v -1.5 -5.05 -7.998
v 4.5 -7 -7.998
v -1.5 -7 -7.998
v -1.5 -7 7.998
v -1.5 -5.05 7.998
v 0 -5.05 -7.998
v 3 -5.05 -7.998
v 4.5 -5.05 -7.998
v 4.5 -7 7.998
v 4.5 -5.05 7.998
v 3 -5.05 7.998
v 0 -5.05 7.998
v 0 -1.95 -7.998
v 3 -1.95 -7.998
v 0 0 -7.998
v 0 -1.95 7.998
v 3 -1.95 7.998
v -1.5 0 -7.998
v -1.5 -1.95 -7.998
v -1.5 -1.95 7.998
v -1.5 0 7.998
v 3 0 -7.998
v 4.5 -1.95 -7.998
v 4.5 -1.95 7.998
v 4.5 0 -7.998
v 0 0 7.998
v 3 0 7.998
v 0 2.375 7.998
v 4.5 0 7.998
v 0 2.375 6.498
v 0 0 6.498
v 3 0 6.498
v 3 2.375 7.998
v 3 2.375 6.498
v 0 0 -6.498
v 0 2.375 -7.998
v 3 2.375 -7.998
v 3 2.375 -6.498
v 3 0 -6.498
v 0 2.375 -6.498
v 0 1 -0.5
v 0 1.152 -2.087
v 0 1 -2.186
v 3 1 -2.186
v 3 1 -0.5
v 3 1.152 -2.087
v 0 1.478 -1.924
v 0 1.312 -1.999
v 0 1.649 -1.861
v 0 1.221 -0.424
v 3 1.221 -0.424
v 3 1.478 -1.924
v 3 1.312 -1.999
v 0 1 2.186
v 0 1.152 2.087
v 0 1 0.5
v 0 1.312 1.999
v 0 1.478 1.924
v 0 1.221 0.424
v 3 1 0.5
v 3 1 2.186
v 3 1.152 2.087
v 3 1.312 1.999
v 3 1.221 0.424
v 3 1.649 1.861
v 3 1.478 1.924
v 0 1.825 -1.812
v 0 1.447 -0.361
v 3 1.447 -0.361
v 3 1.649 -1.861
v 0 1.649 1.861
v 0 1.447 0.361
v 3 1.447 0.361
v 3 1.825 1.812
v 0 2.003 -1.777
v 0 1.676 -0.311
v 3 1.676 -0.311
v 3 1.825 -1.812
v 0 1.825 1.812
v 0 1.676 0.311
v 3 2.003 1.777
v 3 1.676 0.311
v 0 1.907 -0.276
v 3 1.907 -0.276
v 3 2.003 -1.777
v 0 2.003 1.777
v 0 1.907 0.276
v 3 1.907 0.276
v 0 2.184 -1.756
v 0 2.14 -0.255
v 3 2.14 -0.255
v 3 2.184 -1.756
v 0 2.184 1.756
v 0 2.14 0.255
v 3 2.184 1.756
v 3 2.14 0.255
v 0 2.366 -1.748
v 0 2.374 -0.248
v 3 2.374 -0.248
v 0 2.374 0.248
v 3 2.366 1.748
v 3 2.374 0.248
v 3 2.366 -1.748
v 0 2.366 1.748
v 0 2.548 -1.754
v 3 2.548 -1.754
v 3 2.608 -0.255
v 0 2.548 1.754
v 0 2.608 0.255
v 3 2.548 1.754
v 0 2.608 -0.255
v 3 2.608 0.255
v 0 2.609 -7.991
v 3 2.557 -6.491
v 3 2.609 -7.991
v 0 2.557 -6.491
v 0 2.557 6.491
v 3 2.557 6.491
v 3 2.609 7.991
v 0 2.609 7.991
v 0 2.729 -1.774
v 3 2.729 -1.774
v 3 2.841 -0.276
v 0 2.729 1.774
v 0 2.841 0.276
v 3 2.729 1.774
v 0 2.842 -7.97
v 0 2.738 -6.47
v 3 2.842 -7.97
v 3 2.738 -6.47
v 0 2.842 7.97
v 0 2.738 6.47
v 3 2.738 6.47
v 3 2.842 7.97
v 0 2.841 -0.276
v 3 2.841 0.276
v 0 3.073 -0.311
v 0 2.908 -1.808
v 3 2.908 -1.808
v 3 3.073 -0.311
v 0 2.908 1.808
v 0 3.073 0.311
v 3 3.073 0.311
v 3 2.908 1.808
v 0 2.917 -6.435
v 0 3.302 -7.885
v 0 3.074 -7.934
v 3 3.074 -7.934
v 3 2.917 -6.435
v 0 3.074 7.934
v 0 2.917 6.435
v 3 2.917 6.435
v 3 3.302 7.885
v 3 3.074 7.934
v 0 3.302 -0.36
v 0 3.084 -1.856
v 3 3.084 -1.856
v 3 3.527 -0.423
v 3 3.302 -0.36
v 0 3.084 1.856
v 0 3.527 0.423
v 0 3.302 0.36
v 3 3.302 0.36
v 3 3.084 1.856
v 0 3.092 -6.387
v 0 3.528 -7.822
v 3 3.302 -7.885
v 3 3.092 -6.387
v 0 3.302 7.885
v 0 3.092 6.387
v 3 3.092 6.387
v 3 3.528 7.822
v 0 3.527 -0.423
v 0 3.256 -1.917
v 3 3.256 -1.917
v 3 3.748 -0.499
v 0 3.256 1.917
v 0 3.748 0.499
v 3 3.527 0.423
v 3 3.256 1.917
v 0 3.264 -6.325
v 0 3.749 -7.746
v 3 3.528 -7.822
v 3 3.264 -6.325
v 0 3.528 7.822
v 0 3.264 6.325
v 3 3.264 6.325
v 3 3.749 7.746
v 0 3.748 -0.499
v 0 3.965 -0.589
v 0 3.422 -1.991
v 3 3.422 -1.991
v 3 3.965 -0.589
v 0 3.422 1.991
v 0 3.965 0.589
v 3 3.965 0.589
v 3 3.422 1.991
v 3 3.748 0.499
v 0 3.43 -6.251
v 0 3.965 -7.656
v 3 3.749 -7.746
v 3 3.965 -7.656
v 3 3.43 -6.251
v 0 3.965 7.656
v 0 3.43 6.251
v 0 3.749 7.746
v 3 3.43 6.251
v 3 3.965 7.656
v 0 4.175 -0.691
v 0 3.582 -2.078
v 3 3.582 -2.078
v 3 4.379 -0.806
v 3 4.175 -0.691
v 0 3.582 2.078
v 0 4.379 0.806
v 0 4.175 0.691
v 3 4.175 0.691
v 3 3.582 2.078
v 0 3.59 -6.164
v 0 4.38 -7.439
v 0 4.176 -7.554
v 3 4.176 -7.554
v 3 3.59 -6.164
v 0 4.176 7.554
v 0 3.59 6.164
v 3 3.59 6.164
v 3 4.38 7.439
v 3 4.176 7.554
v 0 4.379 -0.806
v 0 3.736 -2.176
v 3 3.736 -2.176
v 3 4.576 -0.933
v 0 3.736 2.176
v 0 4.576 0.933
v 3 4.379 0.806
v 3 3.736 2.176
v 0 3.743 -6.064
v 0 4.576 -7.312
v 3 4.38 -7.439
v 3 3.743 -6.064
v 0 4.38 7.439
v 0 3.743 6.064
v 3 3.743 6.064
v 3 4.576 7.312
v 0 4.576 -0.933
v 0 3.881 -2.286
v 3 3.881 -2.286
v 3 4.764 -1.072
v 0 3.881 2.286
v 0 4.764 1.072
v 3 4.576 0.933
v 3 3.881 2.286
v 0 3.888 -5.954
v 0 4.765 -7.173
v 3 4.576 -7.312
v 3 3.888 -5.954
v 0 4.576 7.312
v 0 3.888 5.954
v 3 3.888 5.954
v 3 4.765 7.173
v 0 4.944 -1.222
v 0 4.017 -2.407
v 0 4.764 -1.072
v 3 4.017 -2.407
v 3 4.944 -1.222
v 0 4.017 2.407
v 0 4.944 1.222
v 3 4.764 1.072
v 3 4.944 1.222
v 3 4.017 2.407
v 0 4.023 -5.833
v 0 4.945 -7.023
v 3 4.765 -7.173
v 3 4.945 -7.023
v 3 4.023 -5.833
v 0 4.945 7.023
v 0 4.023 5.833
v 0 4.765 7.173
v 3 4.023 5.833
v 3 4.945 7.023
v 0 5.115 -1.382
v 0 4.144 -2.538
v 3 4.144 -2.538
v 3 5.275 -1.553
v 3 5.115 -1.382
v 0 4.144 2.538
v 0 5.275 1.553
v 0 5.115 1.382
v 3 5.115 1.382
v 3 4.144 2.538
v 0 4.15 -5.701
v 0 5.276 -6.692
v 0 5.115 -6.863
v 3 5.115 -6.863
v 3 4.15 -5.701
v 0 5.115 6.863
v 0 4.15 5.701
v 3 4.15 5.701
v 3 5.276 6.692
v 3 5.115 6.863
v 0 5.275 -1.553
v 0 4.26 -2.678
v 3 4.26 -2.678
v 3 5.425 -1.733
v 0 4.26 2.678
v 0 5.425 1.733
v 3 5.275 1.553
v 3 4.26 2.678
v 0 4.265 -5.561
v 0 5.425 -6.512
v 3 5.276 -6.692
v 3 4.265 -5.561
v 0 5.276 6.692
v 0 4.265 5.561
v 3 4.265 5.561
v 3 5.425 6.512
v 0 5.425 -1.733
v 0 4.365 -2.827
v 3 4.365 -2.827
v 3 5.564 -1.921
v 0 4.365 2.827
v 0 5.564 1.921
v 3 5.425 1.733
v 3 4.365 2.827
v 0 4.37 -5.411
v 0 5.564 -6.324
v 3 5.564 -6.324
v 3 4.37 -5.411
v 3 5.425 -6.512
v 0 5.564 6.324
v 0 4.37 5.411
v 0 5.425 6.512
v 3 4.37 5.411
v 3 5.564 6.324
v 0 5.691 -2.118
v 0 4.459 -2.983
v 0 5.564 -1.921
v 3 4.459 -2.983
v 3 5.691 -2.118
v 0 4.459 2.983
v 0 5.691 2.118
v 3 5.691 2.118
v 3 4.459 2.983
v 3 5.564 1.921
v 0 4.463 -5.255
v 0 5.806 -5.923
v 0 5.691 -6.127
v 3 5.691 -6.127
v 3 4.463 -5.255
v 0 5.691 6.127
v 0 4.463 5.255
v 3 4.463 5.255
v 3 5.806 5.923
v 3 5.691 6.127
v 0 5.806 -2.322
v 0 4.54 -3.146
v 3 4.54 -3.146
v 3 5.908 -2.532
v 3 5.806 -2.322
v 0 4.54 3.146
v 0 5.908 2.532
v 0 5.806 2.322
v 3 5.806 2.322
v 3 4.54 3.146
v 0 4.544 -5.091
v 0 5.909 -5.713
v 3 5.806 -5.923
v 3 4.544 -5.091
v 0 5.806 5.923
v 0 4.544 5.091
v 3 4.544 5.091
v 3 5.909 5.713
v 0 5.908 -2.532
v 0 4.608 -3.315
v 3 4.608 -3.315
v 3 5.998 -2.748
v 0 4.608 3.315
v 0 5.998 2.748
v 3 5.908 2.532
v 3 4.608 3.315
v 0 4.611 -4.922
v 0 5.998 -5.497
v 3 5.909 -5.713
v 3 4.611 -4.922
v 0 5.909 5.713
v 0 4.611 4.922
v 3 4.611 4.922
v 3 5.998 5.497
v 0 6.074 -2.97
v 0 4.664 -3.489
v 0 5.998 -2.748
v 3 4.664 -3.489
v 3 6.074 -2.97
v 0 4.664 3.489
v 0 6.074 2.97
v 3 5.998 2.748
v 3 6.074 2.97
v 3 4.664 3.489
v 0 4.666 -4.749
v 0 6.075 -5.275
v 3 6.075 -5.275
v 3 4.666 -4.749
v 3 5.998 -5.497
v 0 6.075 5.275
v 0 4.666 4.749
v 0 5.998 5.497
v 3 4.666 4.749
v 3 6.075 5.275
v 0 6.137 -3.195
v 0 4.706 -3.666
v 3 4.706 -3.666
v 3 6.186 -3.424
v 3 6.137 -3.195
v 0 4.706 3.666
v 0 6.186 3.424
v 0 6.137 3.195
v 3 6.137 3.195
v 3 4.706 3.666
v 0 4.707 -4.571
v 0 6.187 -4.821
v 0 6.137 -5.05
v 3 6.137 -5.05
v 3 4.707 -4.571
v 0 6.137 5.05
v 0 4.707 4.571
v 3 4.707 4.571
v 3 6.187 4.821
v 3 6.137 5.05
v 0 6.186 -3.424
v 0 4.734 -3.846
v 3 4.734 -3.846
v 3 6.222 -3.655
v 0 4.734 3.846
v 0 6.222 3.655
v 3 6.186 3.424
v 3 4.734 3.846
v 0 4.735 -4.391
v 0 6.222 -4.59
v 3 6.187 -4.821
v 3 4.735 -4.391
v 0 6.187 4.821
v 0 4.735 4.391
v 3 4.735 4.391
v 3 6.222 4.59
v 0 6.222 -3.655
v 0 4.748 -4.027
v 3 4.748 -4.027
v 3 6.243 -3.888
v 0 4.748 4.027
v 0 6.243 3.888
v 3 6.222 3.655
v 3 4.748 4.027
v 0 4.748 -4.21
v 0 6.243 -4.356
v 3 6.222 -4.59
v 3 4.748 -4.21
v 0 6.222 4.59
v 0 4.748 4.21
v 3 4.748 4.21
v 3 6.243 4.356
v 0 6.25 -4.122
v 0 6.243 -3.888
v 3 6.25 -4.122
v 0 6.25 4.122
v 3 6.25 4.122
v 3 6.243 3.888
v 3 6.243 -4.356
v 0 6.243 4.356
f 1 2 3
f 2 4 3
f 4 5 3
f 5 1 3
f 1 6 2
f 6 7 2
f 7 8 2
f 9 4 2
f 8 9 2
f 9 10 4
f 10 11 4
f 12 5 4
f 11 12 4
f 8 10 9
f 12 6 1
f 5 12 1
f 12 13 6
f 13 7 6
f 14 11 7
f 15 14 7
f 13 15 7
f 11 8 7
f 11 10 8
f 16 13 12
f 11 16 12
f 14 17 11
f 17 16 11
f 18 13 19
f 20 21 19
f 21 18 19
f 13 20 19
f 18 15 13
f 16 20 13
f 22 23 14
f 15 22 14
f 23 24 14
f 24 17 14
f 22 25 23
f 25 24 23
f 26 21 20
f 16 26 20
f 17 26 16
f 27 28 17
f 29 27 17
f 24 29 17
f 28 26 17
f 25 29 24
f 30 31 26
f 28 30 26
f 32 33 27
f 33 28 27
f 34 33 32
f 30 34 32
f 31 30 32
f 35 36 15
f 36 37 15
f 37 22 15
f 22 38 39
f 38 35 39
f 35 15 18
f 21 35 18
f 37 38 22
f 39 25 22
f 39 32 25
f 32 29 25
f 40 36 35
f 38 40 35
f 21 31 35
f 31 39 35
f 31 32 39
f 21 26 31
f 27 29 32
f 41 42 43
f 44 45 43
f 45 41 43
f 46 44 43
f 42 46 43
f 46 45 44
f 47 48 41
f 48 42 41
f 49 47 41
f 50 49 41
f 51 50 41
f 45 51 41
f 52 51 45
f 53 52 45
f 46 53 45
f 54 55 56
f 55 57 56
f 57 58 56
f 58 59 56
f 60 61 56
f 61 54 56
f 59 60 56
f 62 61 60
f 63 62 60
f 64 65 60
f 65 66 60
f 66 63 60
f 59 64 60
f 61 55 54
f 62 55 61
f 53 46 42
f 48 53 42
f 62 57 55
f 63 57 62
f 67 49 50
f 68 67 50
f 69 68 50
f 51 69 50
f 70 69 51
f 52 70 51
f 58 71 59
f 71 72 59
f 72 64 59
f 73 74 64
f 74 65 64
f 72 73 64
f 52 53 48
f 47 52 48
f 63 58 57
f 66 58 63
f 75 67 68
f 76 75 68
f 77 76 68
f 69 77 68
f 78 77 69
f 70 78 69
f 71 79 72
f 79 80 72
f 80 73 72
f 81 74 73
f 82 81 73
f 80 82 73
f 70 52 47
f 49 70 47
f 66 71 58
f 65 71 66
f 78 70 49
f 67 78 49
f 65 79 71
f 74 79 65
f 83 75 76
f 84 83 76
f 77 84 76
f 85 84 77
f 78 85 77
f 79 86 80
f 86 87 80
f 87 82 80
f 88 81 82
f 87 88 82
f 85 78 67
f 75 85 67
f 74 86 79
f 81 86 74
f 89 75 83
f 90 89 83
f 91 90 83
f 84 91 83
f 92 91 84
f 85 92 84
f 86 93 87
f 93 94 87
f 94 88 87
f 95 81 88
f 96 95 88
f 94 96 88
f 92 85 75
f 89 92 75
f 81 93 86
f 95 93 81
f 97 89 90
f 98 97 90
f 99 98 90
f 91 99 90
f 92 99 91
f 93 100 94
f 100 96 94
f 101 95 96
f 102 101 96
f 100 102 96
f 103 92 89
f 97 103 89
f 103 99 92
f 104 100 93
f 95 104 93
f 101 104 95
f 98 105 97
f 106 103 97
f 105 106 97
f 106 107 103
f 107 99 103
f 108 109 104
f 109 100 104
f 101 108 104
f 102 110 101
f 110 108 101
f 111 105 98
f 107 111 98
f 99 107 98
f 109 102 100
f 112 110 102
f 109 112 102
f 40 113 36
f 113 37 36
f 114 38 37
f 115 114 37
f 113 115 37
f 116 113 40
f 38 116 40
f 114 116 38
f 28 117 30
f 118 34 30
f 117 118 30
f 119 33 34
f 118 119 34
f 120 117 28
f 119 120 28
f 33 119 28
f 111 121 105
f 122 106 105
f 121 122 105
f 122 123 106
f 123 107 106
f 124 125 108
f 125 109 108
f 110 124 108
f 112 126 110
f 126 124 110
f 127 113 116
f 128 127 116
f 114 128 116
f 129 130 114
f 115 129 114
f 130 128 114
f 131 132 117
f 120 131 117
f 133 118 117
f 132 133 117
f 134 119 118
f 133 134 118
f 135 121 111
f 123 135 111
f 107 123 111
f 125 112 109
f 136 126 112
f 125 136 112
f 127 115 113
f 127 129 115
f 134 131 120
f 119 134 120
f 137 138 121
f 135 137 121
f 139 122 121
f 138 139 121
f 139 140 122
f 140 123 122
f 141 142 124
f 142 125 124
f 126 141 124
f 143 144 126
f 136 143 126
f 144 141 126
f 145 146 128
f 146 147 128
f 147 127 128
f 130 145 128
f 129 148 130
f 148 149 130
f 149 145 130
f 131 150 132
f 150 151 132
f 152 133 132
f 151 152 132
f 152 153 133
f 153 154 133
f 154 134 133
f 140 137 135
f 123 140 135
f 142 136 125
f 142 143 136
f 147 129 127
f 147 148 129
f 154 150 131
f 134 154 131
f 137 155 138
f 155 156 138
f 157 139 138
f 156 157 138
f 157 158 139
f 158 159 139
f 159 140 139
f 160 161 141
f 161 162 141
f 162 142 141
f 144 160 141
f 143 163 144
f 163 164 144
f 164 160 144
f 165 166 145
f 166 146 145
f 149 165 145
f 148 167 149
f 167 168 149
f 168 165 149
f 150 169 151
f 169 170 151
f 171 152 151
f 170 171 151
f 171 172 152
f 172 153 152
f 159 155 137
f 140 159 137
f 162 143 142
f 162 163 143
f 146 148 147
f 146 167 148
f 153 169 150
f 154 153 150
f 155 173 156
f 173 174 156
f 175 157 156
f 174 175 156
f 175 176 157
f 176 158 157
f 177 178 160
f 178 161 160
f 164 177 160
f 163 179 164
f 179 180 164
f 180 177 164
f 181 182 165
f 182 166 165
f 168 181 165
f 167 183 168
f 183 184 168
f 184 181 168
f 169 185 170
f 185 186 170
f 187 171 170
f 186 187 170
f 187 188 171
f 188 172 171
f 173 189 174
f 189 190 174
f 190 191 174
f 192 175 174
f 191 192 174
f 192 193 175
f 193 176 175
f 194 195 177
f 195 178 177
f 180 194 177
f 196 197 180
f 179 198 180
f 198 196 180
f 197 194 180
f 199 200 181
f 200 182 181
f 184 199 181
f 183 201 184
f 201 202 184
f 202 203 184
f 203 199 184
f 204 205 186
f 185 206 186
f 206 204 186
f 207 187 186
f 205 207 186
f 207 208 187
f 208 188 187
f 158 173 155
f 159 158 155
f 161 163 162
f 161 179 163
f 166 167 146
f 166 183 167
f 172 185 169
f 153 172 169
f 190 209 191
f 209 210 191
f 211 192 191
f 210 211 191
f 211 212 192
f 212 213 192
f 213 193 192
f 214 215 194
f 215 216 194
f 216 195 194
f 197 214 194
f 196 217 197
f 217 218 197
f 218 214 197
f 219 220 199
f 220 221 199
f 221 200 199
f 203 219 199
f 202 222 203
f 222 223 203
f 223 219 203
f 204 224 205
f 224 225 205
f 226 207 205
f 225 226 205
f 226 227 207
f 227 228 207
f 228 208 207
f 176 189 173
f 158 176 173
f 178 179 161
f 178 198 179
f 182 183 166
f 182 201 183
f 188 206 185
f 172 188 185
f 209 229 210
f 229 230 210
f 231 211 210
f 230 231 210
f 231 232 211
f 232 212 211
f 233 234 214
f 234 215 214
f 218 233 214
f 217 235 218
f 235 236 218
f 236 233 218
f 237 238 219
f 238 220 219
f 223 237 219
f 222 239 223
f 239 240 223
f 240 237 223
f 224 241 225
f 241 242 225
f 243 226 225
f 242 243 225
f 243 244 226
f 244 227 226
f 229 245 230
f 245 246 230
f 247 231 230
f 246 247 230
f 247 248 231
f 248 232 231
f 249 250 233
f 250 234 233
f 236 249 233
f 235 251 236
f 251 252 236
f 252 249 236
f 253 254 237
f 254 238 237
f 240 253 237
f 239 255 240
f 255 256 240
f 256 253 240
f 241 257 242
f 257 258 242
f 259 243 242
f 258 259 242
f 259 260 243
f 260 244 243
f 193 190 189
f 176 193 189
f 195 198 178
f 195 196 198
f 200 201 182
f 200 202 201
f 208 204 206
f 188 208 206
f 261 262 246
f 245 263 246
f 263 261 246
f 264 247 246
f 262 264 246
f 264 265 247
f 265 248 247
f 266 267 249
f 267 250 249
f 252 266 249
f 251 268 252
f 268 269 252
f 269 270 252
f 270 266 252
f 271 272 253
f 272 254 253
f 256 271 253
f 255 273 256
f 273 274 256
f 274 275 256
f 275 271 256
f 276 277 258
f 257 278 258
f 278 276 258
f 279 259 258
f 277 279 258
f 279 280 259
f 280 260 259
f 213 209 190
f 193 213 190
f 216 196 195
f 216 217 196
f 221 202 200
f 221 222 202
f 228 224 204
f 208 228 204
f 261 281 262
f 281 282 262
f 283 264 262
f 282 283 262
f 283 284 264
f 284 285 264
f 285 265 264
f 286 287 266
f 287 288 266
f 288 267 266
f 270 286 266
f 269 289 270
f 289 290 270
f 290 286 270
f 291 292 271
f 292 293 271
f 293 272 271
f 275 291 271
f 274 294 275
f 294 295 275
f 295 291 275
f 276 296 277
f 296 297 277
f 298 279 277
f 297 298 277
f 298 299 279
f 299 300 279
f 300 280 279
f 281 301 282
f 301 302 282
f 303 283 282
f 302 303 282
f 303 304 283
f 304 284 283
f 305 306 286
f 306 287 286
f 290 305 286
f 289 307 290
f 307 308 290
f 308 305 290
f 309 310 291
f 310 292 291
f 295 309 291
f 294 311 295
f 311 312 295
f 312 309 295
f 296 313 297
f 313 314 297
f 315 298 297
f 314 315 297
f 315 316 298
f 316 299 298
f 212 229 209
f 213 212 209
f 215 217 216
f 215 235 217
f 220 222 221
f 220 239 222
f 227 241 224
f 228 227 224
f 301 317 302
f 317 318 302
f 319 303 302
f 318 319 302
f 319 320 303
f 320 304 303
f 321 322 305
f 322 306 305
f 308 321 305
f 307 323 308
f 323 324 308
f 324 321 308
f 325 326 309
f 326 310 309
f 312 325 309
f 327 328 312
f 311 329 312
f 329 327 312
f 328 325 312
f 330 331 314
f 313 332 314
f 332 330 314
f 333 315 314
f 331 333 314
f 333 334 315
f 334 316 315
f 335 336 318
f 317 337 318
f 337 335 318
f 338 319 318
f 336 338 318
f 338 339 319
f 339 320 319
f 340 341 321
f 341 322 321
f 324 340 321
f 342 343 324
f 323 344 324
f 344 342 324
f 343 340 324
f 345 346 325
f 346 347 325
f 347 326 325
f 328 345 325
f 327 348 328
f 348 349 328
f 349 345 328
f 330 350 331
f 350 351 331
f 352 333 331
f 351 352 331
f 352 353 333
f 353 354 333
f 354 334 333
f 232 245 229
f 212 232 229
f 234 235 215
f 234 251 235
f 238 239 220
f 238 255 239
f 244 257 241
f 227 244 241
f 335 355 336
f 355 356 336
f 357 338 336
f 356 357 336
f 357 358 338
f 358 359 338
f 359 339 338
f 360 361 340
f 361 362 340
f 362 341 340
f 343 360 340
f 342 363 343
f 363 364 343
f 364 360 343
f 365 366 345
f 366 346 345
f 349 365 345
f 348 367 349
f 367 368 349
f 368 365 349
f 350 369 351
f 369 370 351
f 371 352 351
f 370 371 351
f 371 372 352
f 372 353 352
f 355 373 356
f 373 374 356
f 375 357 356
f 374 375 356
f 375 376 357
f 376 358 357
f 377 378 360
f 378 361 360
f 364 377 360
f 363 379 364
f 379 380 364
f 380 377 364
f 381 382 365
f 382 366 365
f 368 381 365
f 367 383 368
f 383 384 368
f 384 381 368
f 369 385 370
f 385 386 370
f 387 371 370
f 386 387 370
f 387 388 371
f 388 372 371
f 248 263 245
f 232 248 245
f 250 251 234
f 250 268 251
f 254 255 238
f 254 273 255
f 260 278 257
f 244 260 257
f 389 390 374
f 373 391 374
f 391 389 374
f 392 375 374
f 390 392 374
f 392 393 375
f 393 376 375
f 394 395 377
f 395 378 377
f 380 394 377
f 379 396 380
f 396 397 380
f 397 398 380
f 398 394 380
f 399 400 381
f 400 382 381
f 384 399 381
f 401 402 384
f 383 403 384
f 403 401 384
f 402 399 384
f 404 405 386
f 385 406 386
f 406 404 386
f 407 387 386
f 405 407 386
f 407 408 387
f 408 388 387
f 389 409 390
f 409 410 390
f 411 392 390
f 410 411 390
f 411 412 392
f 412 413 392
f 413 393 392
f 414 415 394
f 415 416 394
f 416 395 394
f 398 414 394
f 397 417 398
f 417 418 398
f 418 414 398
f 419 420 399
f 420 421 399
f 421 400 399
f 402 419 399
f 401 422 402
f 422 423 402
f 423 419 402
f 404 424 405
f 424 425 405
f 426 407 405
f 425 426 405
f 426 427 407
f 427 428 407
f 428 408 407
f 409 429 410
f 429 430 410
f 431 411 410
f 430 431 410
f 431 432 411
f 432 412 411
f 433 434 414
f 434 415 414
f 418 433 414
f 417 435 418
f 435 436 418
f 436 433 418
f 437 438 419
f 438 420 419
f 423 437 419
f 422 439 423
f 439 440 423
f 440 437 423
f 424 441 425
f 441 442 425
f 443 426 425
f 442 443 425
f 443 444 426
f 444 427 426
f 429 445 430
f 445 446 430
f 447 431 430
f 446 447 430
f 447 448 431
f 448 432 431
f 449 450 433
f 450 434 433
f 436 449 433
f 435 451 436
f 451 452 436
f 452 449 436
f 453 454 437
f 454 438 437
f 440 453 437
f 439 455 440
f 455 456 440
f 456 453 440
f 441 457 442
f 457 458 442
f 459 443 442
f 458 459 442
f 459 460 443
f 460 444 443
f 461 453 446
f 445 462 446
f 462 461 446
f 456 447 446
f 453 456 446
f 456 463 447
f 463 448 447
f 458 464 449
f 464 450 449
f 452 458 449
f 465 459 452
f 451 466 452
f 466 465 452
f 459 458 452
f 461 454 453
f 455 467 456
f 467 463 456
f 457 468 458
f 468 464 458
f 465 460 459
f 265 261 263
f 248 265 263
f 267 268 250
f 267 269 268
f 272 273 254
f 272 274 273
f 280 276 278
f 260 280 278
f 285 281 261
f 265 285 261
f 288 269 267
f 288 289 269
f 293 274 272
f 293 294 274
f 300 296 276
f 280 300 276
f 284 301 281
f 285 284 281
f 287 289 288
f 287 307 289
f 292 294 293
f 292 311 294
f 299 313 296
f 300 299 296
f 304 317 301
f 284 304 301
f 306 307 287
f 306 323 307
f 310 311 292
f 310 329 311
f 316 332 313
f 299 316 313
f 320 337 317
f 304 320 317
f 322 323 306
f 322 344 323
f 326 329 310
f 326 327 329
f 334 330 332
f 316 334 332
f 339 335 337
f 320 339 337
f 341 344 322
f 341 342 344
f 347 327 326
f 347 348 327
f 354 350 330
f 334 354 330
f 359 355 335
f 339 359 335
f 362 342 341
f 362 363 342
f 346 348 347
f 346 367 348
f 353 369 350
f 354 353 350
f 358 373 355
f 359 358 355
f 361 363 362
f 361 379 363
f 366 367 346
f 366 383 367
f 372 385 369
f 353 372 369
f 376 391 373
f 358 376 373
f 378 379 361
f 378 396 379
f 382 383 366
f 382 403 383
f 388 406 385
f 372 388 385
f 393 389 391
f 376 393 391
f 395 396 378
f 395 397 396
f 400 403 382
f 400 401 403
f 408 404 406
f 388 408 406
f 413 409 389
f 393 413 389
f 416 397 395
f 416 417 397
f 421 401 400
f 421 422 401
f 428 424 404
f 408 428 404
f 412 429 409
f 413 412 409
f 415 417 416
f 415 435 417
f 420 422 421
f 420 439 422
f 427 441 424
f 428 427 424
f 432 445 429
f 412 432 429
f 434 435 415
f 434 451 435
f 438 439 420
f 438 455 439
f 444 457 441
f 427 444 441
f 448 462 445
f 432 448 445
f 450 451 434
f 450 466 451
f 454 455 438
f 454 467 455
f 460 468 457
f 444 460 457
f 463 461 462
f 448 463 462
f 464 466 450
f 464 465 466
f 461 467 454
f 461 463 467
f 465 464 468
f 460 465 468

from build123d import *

# Parameters (mm, degrees)
SKETCH1_W           = 15.995688374
SKETCH1_H           = 2
SKETCH1_H_2         = 3
BOSS_EXTRUDE1_DEPTH = 3
SKETCH4_W           = 15.995688374
SKETCH4_H           = 1.95
BOSS_EXTRUDE2_DEPTH = 3


with BuildPart() as part:
    # Sketch1 → Boss-Extrude1 (new body)
    with BuildSketch(Plane(origin=(0, 0, 0), x_dir=(0, 0, -1), z_dir=(1, 0, 0))):
        with BuildLine():
            Line((-7.997844187, 0), (-6.497844187, 0))
            Line((-6.497844187, 0), (-6.497844187, 2.375))
            ThreePointArc((-6.497844187, 2.375), (-3.401228889, 4.637718799), (-2.186352513, 1))
            Line((-2.186352513, 1), (-0.5, 1))
            ThreePointArc((-0.5, 1), (-3.423879317, 6.186439769), (-7.997844187, 2.375))
            Line((-7.997844187, 2.375), (-7.997844187, 0))
        make_face()
        with Locations((0, -1)):
            Rectangle(SKETCH1_W, SKETCH1_H)
        with BuildLine():
            Line((6.497844187, 2.375), (6.497844187, 0))
            Line((6.497844187, 0), (7.997844187, 0))
            Line((7.997844187, 0), (7.997844187, 2.375))
            ThreePointArc((7.997844187, 2.375), (3.423879317, 6.186439769), (0.5, 1))
            Line((0.5, 1), (2.186352513, 1))
            ThreePointArc((2.186352513, 1), (3.401228889, 4.637718799), (6.497844187, 2.375))
        make_face()
        with Locations((0, -3.5)):
            Rectangle(SKETCH1_W, SKETCH1_H_2)
        with Locations((0, -6)):
            Rectangle(SKETCH1_W, SKETCH1_H)
    extrude(amount=BOSS_EXTRUDE1_DEPTH)

    # Sketch4 → Boss-Extrude2 (add, symmetric)
    with BuildSketch(Plane(origin=(1.5, 0, 0), x_dir=(0, 0, -1), z_dir=(1, 0, 0))):
        with Locations((0, -0.975)):
            Rectangle(SKETCH4_W, SKETCH4_H)
        with Locations((0, -6.025)):
            Rectangle(SKETCH4_W, SKETCH4_H)
    extrude(amount=BOSS_EXTRUDE2_DEPTH, both=True)


solid = part.part
